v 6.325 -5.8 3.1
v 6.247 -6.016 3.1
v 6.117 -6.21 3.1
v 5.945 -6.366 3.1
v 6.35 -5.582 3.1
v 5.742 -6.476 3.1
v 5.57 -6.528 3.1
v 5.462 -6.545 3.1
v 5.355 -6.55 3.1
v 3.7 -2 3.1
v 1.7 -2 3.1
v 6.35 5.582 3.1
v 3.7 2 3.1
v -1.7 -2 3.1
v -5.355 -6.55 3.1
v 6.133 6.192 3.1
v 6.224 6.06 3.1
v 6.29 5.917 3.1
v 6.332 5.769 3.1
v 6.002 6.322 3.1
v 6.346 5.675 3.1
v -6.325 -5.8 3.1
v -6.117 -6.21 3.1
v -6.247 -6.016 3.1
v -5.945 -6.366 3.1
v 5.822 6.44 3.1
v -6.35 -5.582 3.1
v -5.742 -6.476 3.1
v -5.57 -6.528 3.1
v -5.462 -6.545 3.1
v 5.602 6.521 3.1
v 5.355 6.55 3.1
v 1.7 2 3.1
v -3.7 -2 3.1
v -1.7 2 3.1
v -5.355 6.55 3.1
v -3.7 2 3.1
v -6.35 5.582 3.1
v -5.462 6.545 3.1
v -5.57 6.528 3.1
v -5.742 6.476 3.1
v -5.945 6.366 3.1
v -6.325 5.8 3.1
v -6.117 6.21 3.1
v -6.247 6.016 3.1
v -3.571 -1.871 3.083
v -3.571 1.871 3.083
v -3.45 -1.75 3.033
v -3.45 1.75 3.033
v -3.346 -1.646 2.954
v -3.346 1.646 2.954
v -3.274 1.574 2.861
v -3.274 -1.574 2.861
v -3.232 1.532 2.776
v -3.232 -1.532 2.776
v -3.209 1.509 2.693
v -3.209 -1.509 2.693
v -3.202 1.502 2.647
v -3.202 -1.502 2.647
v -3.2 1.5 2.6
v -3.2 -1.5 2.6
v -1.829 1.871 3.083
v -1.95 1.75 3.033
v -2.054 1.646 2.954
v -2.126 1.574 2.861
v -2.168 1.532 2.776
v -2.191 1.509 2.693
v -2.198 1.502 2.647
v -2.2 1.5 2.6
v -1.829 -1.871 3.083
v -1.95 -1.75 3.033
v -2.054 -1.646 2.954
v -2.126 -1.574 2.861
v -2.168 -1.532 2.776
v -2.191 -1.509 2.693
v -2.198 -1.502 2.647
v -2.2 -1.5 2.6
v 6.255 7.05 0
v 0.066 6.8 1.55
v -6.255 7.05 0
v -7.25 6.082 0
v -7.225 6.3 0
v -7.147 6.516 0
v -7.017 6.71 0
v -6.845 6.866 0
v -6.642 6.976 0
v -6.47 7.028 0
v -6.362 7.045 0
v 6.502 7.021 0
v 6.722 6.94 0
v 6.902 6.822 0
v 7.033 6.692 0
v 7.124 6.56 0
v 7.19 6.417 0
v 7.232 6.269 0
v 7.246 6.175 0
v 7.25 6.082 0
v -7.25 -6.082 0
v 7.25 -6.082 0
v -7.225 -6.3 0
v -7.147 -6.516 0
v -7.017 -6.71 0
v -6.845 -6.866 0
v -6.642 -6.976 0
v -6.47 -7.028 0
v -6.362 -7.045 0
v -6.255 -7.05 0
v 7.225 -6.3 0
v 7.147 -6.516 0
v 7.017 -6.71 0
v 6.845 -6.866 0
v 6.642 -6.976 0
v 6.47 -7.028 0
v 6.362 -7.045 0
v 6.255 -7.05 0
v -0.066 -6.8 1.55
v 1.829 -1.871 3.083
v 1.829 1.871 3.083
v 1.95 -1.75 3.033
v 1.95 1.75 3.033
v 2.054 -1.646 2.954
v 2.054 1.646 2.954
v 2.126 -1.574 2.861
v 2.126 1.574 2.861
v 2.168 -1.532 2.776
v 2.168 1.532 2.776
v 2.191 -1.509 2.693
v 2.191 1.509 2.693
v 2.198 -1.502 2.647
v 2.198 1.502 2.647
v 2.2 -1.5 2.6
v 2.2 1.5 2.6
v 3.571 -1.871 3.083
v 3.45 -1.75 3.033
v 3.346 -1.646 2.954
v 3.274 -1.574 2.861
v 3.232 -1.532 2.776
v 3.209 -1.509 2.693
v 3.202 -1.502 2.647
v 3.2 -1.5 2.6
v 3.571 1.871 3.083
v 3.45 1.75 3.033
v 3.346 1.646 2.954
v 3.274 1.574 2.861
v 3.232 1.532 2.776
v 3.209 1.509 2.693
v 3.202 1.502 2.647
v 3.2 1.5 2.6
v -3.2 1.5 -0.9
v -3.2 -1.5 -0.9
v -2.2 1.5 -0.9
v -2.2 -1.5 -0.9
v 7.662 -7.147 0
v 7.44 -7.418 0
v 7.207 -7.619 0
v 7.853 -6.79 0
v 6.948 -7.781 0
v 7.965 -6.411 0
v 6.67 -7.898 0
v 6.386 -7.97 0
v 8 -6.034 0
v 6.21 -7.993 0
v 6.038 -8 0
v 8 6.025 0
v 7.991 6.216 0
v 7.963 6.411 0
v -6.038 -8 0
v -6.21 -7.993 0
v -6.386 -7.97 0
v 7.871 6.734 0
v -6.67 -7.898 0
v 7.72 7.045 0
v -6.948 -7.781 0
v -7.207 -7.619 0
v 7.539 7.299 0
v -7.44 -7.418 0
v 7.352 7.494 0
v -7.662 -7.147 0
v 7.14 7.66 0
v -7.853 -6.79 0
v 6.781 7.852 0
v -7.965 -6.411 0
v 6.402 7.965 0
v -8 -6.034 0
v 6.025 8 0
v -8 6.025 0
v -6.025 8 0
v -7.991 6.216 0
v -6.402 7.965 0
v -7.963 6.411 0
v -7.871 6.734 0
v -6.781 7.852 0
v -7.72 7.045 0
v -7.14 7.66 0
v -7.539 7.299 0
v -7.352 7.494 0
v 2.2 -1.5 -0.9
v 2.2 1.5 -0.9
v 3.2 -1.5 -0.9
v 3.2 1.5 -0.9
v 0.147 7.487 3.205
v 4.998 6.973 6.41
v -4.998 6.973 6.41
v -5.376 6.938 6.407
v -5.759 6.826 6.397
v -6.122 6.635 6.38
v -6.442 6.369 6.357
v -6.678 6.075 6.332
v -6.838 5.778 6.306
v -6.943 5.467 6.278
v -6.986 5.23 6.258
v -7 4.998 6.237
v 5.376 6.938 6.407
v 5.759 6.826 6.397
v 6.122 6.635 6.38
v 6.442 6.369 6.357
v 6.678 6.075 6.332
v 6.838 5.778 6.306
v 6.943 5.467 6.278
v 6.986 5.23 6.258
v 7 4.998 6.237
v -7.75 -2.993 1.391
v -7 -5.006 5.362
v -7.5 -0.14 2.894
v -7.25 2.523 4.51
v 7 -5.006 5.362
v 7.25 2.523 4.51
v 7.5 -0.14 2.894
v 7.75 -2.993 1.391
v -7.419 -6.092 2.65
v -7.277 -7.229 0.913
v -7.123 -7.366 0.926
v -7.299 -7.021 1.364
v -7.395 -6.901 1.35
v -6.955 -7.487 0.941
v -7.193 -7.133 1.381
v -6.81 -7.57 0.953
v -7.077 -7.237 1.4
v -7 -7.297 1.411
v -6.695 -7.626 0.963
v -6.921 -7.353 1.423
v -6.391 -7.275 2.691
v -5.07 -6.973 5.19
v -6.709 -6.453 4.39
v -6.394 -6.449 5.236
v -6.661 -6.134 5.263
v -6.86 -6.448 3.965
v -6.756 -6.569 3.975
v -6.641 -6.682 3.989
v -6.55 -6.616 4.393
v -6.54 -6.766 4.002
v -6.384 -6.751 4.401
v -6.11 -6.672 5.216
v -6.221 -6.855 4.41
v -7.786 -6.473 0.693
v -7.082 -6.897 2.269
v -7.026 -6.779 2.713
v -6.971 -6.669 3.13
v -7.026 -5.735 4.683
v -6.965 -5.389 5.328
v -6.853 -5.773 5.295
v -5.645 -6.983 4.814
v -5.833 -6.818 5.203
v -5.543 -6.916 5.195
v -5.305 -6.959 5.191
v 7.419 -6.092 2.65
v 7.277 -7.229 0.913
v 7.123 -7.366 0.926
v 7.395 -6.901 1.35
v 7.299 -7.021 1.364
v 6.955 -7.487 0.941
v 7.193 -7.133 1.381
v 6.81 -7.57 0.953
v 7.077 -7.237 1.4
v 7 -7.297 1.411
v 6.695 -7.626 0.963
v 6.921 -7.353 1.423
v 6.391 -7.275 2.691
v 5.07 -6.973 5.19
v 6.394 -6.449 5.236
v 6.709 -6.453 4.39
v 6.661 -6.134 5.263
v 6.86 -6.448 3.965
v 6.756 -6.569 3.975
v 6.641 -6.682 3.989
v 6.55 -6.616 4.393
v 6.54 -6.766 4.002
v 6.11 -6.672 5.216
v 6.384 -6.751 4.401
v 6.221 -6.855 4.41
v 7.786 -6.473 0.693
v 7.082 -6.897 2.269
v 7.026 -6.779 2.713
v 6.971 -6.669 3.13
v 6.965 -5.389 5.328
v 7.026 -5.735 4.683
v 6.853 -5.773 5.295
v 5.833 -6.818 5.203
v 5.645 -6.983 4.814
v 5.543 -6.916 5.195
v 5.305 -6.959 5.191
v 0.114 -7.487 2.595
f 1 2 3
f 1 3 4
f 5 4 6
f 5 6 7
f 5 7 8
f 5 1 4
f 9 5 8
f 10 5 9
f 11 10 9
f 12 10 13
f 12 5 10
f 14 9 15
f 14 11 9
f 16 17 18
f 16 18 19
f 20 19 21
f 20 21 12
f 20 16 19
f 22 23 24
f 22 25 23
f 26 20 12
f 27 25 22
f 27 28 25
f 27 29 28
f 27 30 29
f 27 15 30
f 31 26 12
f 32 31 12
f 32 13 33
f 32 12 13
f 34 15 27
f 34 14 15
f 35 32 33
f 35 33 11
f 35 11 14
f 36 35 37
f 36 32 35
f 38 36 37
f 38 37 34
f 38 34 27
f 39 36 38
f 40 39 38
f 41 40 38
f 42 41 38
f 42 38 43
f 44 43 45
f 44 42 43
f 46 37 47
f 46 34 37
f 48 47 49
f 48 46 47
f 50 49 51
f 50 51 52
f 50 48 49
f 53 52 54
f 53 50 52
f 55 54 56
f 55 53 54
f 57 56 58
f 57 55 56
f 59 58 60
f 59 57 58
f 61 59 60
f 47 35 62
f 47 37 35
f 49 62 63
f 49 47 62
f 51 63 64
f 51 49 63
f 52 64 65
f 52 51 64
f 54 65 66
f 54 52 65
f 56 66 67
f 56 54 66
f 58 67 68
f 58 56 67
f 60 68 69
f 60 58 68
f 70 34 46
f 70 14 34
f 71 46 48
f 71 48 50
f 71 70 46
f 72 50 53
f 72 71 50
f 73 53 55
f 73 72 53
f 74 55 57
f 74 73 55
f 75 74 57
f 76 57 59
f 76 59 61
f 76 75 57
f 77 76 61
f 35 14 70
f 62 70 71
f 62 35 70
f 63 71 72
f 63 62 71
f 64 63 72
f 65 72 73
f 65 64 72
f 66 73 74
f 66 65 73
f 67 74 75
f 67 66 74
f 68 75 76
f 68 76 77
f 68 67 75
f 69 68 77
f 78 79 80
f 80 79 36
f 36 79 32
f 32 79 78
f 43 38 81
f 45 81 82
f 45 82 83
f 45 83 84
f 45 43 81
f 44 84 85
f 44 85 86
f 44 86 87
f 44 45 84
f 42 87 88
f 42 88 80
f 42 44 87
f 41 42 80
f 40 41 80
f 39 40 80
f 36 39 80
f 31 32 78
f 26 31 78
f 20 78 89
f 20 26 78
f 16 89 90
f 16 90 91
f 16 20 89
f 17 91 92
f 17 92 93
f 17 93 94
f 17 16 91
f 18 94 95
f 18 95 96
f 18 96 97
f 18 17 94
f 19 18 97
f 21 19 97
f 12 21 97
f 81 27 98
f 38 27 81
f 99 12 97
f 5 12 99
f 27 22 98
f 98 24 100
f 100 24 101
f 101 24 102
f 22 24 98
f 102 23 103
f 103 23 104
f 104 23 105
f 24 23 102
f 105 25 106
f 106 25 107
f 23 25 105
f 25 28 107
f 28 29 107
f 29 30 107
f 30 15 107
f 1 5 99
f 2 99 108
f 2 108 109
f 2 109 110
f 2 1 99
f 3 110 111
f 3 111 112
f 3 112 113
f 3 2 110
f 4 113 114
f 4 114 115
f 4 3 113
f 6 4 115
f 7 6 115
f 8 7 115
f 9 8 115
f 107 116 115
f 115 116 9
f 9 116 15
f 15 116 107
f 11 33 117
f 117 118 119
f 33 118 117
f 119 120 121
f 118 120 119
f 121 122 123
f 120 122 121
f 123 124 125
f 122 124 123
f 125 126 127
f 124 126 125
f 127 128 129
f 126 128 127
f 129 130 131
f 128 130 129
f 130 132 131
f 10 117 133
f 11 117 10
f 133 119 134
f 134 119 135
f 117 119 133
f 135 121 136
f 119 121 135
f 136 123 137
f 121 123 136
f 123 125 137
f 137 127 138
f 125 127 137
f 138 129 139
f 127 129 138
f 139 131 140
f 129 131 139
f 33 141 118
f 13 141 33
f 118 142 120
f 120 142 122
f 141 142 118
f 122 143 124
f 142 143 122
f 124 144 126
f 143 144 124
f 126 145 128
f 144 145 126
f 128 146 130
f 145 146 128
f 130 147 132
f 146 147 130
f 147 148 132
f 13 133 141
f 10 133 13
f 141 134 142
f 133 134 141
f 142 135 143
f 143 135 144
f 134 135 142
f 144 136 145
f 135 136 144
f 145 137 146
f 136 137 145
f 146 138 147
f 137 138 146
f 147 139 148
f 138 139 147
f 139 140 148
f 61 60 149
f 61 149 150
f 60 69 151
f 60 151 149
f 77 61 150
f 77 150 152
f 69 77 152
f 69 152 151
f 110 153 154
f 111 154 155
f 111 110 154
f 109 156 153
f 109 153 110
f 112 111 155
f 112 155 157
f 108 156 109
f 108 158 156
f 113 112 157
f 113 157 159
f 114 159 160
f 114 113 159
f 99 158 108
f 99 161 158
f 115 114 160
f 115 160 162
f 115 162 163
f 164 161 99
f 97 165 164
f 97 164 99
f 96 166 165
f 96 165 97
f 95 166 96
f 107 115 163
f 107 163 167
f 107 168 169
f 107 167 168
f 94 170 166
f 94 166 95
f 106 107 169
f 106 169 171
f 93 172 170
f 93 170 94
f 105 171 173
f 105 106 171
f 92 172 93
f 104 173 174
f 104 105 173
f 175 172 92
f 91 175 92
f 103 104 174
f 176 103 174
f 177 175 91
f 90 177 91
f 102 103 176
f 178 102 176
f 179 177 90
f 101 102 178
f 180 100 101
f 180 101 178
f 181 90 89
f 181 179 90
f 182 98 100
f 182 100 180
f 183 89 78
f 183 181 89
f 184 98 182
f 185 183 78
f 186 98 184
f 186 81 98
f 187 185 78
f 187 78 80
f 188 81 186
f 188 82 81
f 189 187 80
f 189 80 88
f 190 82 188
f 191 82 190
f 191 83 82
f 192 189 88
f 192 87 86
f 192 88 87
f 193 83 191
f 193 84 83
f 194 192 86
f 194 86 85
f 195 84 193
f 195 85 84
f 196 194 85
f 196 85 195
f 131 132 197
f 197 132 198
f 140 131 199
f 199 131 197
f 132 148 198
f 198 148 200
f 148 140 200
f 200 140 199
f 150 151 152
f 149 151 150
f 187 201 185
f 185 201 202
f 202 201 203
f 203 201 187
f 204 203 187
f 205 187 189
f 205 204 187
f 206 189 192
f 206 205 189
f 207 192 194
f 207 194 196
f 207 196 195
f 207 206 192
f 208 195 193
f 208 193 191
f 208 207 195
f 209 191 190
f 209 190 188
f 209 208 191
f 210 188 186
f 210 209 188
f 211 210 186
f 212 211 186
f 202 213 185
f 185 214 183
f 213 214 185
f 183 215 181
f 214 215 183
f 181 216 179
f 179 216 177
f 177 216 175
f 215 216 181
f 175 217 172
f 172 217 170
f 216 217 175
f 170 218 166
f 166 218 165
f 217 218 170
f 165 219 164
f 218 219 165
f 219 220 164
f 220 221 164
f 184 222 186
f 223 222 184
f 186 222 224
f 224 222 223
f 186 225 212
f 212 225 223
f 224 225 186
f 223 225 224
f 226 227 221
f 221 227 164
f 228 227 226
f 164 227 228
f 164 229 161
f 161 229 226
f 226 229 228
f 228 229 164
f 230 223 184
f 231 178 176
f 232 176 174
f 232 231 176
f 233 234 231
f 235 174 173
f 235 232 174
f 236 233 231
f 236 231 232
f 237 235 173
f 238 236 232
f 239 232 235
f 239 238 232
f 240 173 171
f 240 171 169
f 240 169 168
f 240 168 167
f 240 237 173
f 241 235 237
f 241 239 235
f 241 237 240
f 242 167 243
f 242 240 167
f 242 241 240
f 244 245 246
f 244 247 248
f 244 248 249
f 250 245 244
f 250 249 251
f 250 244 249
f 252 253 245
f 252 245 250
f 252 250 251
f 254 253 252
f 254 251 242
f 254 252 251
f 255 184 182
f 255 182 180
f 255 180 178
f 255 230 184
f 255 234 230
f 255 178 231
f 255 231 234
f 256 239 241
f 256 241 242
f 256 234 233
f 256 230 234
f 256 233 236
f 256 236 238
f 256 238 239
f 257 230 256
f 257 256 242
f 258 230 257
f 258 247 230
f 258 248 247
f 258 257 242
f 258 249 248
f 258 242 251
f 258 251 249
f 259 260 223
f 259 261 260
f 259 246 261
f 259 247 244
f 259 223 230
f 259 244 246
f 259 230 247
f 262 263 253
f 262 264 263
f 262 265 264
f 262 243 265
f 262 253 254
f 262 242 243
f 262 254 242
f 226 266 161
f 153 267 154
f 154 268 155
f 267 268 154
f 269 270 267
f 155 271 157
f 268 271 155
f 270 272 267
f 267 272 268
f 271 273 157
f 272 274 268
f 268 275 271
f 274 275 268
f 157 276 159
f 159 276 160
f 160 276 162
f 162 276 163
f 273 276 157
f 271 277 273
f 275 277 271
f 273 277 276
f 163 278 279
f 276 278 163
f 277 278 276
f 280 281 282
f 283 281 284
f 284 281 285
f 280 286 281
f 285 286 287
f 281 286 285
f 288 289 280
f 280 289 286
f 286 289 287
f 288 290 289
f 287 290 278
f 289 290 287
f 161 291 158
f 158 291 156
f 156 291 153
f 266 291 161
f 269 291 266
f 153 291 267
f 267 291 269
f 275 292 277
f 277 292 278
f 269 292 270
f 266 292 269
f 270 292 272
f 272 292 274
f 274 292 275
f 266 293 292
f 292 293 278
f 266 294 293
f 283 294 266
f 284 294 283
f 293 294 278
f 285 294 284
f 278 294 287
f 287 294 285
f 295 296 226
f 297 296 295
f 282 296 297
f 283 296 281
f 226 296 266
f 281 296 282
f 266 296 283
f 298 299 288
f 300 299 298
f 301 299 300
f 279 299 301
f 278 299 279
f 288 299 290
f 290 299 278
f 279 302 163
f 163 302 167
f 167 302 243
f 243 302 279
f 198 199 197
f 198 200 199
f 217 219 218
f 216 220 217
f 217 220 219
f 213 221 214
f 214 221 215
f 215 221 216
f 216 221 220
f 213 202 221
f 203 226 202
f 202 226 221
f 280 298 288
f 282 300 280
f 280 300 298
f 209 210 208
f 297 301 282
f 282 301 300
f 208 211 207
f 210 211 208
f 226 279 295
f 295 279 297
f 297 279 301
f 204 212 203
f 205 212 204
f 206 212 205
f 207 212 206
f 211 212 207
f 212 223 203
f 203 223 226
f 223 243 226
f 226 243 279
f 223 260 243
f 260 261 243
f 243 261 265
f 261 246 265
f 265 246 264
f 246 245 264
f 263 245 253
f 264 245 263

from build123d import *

# Parameters (mm, degrees)
SKETCH003_W = 16
SKETCH003_H = 16
SKETCH004_W = 14
SKETCH004_H = 14
SKETCH_W    = 14.5
SKETCH_H    = 14.1
SKETCH005_W = 12.7
SKETCH005_H = 13.1
SKETCH006_W = 1
SKETCH006_H = 3
PAD_DEPTH   = 4
FILLET_R    = 2
FILLET001_R = 1
FILLET002_R = 0.5


with BuildPart() as part:
    # Sketch003 → AdditiveLoft section 0
    with BuildSketch(Plane.XY):
        Rectangle(SKETCH003_W, SKETCH003_H)
    # Sketch004 → AdditiveLoft section 1
    with BuildSketch(Plane(origin=(0, 0, 5.8), x_dir=(1, 0, 0), z_dir=(0, -0.087156, 0.996195))):
        Rectangle(SKETCH004_W, SKETCH004_H)
    loft()

    # Sketch (on Face1 of AdditiveLoft) → SubtractiveLoft section 0
    with BuildSketch(Plane(origin=(0, 0, 0), x_dir=(1, 0, 0), z_dir=(0, 0, -1))):
        Rectangle(SKETCH_W, SKETCH_H)
    # Sketch005 → SubtractiveLoft section 1
    with BuildSketch(Plane.XY.offset(3.1)):
        Rectangle(SKETCH005_W, SKETCH005_H)
    loft(mode=Mode.SUBTRACT)

    # Sketch006 (on Face11 of SubtractiveLoft) → Pad (new body)
    with BuildSketch(Plane(origin=(0, 0, 3.1), x_dir=(1, 0, 0), z_dir=(0, 0, -1))):
        with Locations((-2.7, 0)):
            Rectangle(SKETCH006_W, SKETCH006_H)
    pad = extrude(amount=PAD_DEPTH)

    # Mirrored: Pad across Sketch006 V_Axis
    add(pad.mirror(Plane(origin=(0, 0, 3.1), x_dir=(0, 0, -1), z_dir=(1, 0, 0))))

    # Fillet
    fillet_edges = [part.edges().sort_by_distance(p)[0] for p in [
        (-7.5, -7.486681, 2.594955),
        (-7.5, 7.486681, 3.205045),
        (7.5, 7.486681, 3.205045),
        (7.5, -7.486681, 2.594955),
    ]]
    fillet(fillet_edges, radius=FILLET_R)

    # Fillet001
    fillet001_edges = [part.edges().sort_by_distance(p)[0] for p in [
        (-6.8, -6.8, 1.55),
        (-6.8, 6.8, 1.55),
        (6.8, -6.8, 1.55),
        (6.8, 6.8, 1.55),
    ]]
    fillet(fillet001_edges, radius=FILLET001_R)

    # Fillet002
    fillet002_edges = [part.edges().sort_by_distance(p)[0] for p in [
        (-3.2, 0, 3.1),
        (2.2, 0, 3.1),
        (-2.7, -1.5, 3.1),
        (2.7, -1.5, 3.1),
        (3.2, 0, 3.1),
        (-2.2, 0, 3.1),
        (2.7, 1.5, 3.1),
        (-2.7, 1.5, 3.1),
    ]]
    fillet(fillet002_edges, radius=FILLET002_R)


solid = part.part
